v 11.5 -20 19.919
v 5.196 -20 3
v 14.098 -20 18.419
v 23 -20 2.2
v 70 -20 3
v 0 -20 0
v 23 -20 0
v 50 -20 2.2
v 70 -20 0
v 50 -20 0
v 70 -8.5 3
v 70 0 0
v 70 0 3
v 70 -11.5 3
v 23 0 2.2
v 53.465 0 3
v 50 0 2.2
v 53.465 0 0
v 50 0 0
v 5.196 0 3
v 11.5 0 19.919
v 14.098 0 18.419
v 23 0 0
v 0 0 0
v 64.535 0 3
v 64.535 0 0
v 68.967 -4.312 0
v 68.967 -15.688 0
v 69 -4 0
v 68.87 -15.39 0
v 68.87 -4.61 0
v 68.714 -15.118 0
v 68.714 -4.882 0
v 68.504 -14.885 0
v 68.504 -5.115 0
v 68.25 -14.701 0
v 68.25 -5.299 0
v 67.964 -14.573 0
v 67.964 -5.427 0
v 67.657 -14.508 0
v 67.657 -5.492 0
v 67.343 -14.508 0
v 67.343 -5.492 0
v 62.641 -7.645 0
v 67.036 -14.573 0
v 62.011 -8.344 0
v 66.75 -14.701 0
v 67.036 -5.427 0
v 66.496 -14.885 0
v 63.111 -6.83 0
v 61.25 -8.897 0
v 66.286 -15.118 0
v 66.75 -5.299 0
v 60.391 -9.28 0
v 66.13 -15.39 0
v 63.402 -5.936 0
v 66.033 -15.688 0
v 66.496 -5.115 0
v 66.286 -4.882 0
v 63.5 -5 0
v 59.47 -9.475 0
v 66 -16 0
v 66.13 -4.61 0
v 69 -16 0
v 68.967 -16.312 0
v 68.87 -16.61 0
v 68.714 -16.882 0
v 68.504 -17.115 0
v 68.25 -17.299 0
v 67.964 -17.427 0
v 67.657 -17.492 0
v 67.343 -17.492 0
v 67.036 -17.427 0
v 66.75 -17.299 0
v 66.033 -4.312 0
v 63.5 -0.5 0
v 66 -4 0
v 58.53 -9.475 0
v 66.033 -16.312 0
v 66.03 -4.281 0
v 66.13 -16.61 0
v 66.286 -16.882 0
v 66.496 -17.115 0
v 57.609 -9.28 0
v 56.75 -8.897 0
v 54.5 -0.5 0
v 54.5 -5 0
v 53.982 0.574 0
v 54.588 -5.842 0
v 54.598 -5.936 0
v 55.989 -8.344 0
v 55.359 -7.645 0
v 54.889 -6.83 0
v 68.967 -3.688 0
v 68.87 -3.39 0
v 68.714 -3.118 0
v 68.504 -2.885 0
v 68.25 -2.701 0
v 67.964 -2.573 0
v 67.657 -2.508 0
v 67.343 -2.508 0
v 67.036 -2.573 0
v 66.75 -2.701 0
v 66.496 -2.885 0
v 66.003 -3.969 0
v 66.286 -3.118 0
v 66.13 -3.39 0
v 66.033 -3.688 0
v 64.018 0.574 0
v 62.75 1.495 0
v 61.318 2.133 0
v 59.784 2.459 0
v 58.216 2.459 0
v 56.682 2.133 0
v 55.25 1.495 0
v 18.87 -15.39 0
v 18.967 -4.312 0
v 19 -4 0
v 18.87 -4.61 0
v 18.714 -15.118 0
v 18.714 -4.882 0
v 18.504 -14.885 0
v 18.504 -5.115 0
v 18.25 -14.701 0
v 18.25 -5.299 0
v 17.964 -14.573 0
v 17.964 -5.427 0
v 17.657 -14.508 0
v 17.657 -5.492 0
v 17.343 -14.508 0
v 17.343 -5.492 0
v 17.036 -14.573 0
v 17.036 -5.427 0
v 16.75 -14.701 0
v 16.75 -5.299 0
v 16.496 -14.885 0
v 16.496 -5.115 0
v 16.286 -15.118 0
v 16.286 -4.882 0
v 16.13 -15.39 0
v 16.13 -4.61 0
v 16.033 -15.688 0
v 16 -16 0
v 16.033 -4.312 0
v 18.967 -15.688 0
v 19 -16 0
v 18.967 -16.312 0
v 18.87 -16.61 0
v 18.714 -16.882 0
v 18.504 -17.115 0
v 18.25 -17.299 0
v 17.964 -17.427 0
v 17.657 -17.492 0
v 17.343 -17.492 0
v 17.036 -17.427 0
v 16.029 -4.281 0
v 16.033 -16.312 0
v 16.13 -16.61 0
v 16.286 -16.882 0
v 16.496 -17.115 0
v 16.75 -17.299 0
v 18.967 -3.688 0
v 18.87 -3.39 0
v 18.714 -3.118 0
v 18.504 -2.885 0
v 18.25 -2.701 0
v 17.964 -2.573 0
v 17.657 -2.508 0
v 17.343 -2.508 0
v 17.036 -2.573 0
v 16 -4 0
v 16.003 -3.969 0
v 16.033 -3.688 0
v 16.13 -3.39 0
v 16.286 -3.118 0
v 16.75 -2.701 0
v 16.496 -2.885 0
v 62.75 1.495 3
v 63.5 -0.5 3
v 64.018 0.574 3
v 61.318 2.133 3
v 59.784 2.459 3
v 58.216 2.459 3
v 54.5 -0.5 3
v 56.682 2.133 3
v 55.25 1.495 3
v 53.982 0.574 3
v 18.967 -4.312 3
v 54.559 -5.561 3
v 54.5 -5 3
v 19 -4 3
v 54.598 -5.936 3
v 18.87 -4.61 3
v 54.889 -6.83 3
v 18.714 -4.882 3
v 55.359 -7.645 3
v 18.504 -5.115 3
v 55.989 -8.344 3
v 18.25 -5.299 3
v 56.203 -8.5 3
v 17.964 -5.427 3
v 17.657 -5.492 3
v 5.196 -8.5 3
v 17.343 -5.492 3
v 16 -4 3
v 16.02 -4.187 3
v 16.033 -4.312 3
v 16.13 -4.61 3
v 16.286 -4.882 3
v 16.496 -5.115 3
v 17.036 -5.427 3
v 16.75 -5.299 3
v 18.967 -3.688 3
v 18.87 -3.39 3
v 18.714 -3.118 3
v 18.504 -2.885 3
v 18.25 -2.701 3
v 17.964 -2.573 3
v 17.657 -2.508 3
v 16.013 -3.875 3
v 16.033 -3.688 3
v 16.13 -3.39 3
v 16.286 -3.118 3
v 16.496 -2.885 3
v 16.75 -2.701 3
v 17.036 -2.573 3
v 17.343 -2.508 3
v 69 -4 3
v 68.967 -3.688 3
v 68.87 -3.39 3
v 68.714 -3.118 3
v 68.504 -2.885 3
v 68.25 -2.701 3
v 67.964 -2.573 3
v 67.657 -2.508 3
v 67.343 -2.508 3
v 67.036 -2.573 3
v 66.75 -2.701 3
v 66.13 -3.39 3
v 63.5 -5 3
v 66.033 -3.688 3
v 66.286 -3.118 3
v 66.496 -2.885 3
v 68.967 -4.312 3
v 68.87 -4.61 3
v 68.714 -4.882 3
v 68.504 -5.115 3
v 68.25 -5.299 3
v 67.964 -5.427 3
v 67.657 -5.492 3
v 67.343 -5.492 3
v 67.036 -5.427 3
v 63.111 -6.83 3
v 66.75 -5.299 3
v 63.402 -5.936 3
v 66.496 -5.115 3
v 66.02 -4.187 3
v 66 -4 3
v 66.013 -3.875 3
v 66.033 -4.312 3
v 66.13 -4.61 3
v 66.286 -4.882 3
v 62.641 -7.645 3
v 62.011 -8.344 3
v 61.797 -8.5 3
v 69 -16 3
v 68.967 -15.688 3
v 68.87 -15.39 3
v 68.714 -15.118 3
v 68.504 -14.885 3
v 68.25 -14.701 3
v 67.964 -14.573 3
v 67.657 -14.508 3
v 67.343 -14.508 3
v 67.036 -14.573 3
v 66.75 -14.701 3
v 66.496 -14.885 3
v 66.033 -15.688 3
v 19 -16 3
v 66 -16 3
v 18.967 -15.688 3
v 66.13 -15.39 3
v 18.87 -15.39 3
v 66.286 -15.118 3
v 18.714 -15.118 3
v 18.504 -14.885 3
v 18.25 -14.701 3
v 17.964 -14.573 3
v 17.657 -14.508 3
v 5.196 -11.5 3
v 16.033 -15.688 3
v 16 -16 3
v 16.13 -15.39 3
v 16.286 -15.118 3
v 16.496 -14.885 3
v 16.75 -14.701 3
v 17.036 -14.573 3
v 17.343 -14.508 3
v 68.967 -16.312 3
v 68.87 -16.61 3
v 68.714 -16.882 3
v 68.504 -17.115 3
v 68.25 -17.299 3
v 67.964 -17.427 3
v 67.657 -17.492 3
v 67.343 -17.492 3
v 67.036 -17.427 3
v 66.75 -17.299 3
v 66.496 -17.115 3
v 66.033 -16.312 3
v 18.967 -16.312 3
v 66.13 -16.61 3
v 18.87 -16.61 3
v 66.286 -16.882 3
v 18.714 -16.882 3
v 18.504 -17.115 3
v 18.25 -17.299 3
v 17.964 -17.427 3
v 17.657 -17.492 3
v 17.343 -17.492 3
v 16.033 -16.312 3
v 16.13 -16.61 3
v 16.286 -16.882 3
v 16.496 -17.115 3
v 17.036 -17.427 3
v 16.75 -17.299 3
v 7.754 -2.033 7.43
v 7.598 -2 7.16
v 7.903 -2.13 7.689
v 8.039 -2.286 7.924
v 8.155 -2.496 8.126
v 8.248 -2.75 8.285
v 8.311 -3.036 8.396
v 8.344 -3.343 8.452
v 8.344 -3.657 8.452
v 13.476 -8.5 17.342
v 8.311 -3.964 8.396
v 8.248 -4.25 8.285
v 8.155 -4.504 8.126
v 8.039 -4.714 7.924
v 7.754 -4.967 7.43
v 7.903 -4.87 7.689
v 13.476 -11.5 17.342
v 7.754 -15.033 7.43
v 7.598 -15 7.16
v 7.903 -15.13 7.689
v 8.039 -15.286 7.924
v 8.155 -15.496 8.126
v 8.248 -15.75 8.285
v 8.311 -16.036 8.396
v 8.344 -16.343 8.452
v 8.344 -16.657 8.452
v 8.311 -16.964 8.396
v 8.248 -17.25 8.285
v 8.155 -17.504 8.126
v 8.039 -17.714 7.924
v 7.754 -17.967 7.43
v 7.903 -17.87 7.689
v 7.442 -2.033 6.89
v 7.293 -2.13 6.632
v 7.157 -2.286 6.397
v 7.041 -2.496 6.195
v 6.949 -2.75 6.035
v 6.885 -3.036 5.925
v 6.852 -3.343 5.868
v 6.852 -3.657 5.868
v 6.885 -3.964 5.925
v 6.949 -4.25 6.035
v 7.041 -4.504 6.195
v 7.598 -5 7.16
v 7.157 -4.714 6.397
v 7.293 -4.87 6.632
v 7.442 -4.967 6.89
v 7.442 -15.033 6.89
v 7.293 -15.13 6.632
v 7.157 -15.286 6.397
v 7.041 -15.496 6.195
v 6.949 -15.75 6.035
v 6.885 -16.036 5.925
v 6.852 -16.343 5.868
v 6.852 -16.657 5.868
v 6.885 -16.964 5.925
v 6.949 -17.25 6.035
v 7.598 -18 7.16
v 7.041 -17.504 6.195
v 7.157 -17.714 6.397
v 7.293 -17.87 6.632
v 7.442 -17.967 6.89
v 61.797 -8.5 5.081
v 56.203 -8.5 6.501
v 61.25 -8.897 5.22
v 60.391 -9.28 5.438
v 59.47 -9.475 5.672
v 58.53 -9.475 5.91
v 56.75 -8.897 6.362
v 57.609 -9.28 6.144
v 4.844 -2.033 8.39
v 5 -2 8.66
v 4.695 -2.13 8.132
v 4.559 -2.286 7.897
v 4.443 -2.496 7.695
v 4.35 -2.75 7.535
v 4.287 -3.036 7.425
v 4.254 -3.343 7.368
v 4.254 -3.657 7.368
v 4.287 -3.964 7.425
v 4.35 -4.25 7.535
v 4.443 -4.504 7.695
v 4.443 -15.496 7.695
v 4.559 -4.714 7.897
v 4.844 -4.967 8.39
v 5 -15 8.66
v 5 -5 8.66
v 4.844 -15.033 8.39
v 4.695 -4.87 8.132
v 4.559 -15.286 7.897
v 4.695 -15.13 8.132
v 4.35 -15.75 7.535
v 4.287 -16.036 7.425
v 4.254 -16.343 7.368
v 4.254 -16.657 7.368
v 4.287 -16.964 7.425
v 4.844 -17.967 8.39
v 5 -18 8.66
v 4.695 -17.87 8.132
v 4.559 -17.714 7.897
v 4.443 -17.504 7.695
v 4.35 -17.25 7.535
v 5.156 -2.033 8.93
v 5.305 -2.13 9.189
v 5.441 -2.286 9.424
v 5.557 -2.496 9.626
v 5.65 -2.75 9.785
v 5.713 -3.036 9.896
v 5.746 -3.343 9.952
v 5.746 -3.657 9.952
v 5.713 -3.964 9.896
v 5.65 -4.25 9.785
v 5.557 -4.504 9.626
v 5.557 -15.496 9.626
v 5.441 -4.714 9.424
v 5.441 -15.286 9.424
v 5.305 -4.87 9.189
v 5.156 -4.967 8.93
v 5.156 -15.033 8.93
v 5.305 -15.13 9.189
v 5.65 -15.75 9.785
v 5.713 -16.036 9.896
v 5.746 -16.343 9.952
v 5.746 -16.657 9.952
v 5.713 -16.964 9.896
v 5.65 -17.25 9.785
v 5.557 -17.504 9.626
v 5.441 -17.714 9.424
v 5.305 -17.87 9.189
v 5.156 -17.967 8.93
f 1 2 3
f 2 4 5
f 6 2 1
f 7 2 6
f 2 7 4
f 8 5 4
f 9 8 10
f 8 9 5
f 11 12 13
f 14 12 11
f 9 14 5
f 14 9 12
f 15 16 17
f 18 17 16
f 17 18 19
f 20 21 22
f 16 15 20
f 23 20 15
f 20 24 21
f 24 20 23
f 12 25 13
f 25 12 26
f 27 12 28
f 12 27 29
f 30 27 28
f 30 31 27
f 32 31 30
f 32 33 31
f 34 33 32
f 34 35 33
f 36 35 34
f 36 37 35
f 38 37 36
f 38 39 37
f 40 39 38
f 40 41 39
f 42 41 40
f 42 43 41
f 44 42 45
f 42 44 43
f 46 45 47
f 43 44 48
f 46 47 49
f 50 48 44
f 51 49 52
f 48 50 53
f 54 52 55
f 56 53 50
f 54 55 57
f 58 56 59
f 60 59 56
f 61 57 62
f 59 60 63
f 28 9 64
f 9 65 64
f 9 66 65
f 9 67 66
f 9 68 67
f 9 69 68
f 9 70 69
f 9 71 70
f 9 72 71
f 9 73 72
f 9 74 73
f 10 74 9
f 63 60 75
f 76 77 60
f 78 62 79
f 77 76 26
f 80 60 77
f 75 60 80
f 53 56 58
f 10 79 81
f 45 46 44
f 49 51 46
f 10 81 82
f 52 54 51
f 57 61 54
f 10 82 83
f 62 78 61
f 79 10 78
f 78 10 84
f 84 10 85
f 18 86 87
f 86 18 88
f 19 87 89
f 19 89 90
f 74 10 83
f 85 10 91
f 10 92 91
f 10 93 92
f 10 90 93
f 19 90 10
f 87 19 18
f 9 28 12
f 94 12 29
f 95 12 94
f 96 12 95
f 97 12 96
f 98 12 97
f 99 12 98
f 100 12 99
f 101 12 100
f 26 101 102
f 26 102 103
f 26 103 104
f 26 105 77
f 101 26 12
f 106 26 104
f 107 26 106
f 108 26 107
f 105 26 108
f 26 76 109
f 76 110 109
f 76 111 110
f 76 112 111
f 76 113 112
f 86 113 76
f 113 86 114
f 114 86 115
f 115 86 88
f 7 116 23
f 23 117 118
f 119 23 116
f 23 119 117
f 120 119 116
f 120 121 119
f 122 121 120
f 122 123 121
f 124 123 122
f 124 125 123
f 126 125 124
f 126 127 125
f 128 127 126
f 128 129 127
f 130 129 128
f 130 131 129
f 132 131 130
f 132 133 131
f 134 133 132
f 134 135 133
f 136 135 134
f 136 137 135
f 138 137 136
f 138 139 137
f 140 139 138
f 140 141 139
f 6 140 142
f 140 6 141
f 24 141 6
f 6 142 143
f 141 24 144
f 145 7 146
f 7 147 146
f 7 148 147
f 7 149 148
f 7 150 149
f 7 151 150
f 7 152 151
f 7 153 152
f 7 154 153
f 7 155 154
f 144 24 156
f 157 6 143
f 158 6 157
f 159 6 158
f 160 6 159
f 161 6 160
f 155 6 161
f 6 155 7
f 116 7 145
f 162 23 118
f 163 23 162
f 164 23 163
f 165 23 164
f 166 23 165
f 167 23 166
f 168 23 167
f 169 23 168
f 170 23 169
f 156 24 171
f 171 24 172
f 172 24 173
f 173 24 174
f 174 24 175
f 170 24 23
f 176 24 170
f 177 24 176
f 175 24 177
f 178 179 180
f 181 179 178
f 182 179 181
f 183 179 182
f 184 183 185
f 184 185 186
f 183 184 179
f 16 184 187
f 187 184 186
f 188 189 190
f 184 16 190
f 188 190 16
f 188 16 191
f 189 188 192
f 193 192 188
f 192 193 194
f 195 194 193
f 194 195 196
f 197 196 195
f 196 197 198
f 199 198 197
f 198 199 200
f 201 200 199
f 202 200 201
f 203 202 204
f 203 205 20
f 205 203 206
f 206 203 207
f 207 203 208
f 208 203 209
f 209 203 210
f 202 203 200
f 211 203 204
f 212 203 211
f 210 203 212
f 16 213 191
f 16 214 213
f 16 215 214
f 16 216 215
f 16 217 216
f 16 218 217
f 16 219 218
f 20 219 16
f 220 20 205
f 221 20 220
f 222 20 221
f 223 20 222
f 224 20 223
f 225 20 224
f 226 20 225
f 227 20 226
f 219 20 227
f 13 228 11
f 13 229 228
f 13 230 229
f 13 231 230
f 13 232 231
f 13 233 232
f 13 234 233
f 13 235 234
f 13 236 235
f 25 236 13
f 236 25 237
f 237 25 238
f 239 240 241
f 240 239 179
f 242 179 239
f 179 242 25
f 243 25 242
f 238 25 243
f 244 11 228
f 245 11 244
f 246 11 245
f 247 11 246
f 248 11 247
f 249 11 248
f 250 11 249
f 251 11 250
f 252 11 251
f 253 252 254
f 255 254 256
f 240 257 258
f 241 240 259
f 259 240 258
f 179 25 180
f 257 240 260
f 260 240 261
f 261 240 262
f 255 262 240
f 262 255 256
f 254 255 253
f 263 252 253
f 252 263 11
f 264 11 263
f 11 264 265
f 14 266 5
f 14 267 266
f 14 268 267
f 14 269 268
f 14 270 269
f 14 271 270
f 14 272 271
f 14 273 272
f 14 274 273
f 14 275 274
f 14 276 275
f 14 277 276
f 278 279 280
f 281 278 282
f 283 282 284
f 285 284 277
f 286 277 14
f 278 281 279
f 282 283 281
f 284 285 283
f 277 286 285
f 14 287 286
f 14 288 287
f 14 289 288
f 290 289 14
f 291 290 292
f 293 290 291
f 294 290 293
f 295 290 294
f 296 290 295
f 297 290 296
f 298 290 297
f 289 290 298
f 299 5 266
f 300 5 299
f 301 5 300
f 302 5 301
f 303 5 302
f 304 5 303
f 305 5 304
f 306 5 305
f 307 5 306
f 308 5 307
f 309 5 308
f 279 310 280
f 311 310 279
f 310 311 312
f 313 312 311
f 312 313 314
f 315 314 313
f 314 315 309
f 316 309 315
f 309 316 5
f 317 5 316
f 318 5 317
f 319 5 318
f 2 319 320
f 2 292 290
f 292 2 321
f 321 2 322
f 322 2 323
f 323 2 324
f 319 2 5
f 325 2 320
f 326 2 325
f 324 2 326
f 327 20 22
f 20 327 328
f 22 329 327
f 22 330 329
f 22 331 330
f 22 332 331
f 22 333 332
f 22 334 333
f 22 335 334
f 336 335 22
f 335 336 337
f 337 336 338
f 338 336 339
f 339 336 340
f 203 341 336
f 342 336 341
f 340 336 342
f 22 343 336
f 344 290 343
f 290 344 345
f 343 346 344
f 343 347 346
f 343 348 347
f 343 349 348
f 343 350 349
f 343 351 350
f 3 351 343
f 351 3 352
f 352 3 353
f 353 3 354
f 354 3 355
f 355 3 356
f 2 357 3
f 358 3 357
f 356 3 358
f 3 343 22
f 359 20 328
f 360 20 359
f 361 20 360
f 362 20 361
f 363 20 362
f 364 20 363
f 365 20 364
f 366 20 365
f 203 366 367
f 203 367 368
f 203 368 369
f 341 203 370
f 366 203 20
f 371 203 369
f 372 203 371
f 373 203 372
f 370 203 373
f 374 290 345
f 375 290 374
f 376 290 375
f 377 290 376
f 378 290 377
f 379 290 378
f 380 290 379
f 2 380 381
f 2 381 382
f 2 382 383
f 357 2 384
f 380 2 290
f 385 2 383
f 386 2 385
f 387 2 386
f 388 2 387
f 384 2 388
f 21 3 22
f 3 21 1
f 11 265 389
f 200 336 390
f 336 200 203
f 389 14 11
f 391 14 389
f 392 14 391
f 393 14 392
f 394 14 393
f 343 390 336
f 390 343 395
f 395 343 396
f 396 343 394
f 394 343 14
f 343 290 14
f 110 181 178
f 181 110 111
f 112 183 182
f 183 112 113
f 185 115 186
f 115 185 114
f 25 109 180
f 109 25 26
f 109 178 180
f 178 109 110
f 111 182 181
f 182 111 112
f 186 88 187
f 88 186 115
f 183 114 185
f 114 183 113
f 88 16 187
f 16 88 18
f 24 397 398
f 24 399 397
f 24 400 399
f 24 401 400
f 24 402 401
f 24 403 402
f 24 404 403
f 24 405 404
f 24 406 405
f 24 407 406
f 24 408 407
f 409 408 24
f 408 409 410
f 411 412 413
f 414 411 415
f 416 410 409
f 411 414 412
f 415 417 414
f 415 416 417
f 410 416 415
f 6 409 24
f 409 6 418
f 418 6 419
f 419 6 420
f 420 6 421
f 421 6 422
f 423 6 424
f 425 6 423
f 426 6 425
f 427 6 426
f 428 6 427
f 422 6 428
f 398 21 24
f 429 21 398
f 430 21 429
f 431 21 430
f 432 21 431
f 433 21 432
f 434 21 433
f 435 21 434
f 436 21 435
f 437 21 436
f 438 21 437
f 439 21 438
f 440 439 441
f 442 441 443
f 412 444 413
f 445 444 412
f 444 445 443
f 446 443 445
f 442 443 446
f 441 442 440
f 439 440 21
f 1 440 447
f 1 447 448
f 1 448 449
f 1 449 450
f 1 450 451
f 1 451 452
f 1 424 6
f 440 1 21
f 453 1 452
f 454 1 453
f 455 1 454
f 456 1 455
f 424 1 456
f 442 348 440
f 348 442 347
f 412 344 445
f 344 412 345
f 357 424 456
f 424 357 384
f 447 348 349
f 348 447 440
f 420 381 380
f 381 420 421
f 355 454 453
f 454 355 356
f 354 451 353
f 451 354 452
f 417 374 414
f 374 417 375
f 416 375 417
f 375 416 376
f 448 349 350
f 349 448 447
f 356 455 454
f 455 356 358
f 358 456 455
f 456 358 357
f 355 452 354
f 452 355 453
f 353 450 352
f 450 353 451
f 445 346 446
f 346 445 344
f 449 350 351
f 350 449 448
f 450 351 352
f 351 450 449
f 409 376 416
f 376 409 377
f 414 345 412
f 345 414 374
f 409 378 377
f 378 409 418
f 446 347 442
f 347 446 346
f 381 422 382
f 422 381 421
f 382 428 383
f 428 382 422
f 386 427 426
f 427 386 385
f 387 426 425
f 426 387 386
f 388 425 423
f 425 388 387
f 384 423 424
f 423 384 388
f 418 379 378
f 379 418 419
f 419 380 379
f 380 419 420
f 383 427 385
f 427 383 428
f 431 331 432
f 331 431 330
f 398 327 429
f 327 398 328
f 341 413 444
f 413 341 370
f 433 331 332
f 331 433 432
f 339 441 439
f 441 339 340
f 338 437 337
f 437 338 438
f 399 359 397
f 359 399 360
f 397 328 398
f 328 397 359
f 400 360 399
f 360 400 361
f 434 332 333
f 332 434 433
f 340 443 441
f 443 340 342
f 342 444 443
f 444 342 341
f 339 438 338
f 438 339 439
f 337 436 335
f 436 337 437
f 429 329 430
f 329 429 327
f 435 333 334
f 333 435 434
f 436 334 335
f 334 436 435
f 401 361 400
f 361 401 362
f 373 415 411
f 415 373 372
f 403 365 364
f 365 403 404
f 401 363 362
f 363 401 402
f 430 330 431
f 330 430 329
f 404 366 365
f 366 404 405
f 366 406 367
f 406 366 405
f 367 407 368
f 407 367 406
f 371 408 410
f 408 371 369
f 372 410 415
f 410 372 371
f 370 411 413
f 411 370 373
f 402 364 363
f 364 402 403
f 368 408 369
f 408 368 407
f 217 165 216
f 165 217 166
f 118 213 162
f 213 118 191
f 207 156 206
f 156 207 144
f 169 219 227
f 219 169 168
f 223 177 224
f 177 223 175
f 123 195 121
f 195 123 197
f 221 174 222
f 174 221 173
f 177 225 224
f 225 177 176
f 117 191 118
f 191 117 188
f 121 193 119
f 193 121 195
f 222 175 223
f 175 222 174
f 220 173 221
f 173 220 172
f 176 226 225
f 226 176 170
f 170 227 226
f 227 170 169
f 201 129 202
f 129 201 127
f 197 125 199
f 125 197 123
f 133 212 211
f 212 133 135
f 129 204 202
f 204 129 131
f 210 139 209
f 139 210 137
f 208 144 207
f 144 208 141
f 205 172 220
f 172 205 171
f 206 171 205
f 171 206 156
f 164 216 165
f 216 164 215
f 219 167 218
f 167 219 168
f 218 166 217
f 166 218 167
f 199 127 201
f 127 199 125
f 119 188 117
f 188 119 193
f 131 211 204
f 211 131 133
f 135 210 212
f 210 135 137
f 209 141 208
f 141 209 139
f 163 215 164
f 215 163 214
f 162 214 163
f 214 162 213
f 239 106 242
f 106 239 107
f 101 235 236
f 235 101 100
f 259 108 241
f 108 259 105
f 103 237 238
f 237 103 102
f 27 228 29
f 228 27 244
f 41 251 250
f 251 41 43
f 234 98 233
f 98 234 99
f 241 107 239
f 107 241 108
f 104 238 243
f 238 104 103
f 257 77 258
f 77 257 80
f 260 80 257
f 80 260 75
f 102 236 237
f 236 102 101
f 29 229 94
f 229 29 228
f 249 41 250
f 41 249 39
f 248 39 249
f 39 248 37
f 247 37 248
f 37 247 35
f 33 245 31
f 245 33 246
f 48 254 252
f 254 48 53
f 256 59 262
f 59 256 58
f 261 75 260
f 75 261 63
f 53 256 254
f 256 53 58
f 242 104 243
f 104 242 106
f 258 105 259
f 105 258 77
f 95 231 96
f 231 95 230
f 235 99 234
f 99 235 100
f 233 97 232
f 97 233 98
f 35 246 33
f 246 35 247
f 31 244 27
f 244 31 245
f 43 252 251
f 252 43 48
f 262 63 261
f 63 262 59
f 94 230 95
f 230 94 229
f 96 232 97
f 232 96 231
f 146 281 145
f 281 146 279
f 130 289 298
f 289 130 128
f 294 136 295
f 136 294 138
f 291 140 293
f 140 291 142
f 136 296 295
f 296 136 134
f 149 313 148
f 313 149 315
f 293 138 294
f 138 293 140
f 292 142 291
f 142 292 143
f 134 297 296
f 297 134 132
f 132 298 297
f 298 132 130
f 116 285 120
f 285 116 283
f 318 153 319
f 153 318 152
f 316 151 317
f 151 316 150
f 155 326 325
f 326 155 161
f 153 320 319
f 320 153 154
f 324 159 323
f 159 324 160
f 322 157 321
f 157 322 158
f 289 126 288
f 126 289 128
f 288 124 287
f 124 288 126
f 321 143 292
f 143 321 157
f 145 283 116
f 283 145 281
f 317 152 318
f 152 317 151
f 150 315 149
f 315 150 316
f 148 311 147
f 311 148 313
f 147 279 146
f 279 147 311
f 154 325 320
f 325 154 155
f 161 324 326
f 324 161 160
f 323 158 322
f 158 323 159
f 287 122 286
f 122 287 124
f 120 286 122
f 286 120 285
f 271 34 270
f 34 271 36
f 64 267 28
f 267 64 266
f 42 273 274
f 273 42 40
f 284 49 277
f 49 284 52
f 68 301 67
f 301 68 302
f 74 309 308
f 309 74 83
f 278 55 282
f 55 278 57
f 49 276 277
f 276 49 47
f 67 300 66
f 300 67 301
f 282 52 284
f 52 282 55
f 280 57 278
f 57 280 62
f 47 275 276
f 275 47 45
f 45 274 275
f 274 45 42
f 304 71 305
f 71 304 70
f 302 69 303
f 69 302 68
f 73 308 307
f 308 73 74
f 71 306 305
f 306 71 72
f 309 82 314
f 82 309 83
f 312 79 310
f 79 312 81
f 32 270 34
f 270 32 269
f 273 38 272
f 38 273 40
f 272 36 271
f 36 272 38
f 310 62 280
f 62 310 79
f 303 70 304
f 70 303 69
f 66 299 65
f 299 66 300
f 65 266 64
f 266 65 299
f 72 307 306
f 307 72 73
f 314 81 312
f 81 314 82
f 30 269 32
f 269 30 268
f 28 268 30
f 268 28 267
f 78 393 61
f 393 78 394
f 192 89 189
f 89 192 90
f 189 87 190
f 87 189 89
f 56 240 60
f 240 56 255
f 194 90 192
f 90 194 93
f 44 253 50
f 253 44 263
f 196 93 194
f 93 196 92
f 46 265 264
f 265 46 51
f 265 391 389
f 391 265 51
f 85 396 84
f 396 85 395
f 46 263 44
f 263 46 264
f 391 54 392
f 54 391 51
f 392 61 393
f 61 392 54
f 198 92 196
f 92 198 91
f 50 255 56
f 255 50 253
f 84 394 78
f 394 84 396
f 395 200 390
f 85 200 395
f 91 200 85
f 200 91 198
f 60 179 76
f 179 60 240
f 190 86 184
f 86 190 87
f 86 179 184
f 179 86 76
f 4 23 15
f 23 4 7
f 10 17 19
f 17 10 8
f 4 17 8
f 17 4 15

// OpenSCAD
// file: lib/halfcube.scad
// библиотечная функция - прямоугольная призма
/*
 * a - вектор [x,y,z] - куб, в который вписана призма
 * orient - строка "x"/"y"/"z" - ориентация треугольной грани призмы
 * center - логическое true/false - позиционирование относительно центра или с угла
 *
 * Автор - Andrew Answer (Андрей Нуждов): http://answe.ru
 * Сделано для проекта SibRap: http://reprap.org/wiki/SibRap
 * GitHub: https://github.com/andrewanswer/sibrap
 */
module halfcube(a, orient, center) {
	translate(center==true?-a/2:0) {
		if (orient=="x")
			polyhedron (points = [[a[0],0,a[2]], [0,0,a[2]], [0,a[1],0], [0,0,0], [a[0],0,0], [a[0],a[1],0]], faces = [[1,3,2], [4,0,5], [3,1,4], [1,2,5], [1,0,4], [0,1,5],  [5,2,4], [4,2,3]]);
		if (orient=="y")
			polyhedron (points = [[0,a[1],a[2]], [0,0,a[2]], [0,a[1],0], [0,0,0], [a[0],0,0], [a[0],a[1],0]], faces = [[1,3,2], [1,2,0], [3,1,4], [0,2,5], [1,5,4], [1,0,5],  [5,2,4], [4,2,3]]);
		if (orient=="z")
			polyhedron (points = [[0,a[1],a[2]], [0,0,a[2]], [0,a[1],0], [0,0,0], [a[0],0,0], [a[0],0,a[2]]], faces = [[1,3,2], [1,2,0], [3,1,4], [0,2,5], [1,5,4], [1,0,5],  [5,2,4], [4,2,3]]);
	}
}

// test
/*
halfcube([10,20,30],"x",true);
halfcube([10,20,30],"y",true);
halfcube([10,20,30],"z",false);
*/
// file: config.scad
/**
 * Глобальный конфигурационный файл
 */
// качество цилиндров
$fn=30;

// избегание совпадения граней
DELTA=0.1;

// толщина рамы
FRAME=18;

// расстояние от стенок до гайки
DELTA_NUT = 0.3;
// высота, макс. диаметр, между стенками (размер ключа)
// гайка М3
m3_base=[2.4,6.4,5.5];
m3_hole=m3_base+[DELTA_NUT,DELTA_NUT,DELTA_NUT];
//[3,7,6]
// гайка М4
m4_base=[3.2,8.1,6.9];
m4_hole=m4_base+[DELTA_NUT,DELTA_NUT,DELTA_NUT];
// гайка М5
m5_base=[3.8,9.1,7.9];
m5_hole=m5_base+[DELTA_NUT,DELTA_NUT,DELTA_NUT];
// main file
include <config.scad>
use <lib/halfcube.scad>

x2=145;
x3=120;
dx=(x2-x3)/2;
dx0=4;

x1=70;
y1=20;
z1=20;
h1=3;

r1=4.5;

module lcd() {
    rotate([90,0,0])
    difference() {
    union() {
        cube([x1,h1,z1]);
        rotate([0,0,-30])translate([0,3,0])cube([h1,y1,z1]);
        translate([h1,h1,(z1-h1)/2])halfcube([x1-h1,y1-h1,h1],"z");
        translate([x1-11,0,z1-dx0-11])rotate([-90,0,0])cylinder(r=r1+3,h=h1);
    }
        rotate([0,0,-30]){translate([-3*3,0,0])cube([h1*3,y1+3,z1]);
        translate([-1,10,dx0+dx])rotate([0,90,0])cylinder(r=1.5,h=h1+2);
        translate([-1,10,z1-(dx0+dx)])rotate([0,90,0])cylinder(r=1.5,h=h1+2);}
        translate([x1-2.5-50,-1,dx0])rotate([-90,0,0])cylinder(r=1.5,h=10);
        translate([x1-2.5,-1,dx0])rotate([-90,0,0])cylinder(r=1.5,h=10);
        translate([x1-2.5-50,-1,z1-dx0])rotate([-90,0,0])cylinder(r=1.5,h=10);
        translate([x1-2.5,-1,z1-dx0])rotate([-90,0,0])cylinder(r=1.5,h=10);
        translate([x1-11,-1,z1-dx0-11])rotate([-90,0,0])cylinder(r=r1,h=10);
        translate([x1-11-r1,-1,z1-dx0-11])rotate([-90,0,0])cube([r1*2,r1,h1+2]);
        translate([x1-21-25-1,-0.1,-0.1])cube([27,2.3,20.2]);
    }
}

lcd();
